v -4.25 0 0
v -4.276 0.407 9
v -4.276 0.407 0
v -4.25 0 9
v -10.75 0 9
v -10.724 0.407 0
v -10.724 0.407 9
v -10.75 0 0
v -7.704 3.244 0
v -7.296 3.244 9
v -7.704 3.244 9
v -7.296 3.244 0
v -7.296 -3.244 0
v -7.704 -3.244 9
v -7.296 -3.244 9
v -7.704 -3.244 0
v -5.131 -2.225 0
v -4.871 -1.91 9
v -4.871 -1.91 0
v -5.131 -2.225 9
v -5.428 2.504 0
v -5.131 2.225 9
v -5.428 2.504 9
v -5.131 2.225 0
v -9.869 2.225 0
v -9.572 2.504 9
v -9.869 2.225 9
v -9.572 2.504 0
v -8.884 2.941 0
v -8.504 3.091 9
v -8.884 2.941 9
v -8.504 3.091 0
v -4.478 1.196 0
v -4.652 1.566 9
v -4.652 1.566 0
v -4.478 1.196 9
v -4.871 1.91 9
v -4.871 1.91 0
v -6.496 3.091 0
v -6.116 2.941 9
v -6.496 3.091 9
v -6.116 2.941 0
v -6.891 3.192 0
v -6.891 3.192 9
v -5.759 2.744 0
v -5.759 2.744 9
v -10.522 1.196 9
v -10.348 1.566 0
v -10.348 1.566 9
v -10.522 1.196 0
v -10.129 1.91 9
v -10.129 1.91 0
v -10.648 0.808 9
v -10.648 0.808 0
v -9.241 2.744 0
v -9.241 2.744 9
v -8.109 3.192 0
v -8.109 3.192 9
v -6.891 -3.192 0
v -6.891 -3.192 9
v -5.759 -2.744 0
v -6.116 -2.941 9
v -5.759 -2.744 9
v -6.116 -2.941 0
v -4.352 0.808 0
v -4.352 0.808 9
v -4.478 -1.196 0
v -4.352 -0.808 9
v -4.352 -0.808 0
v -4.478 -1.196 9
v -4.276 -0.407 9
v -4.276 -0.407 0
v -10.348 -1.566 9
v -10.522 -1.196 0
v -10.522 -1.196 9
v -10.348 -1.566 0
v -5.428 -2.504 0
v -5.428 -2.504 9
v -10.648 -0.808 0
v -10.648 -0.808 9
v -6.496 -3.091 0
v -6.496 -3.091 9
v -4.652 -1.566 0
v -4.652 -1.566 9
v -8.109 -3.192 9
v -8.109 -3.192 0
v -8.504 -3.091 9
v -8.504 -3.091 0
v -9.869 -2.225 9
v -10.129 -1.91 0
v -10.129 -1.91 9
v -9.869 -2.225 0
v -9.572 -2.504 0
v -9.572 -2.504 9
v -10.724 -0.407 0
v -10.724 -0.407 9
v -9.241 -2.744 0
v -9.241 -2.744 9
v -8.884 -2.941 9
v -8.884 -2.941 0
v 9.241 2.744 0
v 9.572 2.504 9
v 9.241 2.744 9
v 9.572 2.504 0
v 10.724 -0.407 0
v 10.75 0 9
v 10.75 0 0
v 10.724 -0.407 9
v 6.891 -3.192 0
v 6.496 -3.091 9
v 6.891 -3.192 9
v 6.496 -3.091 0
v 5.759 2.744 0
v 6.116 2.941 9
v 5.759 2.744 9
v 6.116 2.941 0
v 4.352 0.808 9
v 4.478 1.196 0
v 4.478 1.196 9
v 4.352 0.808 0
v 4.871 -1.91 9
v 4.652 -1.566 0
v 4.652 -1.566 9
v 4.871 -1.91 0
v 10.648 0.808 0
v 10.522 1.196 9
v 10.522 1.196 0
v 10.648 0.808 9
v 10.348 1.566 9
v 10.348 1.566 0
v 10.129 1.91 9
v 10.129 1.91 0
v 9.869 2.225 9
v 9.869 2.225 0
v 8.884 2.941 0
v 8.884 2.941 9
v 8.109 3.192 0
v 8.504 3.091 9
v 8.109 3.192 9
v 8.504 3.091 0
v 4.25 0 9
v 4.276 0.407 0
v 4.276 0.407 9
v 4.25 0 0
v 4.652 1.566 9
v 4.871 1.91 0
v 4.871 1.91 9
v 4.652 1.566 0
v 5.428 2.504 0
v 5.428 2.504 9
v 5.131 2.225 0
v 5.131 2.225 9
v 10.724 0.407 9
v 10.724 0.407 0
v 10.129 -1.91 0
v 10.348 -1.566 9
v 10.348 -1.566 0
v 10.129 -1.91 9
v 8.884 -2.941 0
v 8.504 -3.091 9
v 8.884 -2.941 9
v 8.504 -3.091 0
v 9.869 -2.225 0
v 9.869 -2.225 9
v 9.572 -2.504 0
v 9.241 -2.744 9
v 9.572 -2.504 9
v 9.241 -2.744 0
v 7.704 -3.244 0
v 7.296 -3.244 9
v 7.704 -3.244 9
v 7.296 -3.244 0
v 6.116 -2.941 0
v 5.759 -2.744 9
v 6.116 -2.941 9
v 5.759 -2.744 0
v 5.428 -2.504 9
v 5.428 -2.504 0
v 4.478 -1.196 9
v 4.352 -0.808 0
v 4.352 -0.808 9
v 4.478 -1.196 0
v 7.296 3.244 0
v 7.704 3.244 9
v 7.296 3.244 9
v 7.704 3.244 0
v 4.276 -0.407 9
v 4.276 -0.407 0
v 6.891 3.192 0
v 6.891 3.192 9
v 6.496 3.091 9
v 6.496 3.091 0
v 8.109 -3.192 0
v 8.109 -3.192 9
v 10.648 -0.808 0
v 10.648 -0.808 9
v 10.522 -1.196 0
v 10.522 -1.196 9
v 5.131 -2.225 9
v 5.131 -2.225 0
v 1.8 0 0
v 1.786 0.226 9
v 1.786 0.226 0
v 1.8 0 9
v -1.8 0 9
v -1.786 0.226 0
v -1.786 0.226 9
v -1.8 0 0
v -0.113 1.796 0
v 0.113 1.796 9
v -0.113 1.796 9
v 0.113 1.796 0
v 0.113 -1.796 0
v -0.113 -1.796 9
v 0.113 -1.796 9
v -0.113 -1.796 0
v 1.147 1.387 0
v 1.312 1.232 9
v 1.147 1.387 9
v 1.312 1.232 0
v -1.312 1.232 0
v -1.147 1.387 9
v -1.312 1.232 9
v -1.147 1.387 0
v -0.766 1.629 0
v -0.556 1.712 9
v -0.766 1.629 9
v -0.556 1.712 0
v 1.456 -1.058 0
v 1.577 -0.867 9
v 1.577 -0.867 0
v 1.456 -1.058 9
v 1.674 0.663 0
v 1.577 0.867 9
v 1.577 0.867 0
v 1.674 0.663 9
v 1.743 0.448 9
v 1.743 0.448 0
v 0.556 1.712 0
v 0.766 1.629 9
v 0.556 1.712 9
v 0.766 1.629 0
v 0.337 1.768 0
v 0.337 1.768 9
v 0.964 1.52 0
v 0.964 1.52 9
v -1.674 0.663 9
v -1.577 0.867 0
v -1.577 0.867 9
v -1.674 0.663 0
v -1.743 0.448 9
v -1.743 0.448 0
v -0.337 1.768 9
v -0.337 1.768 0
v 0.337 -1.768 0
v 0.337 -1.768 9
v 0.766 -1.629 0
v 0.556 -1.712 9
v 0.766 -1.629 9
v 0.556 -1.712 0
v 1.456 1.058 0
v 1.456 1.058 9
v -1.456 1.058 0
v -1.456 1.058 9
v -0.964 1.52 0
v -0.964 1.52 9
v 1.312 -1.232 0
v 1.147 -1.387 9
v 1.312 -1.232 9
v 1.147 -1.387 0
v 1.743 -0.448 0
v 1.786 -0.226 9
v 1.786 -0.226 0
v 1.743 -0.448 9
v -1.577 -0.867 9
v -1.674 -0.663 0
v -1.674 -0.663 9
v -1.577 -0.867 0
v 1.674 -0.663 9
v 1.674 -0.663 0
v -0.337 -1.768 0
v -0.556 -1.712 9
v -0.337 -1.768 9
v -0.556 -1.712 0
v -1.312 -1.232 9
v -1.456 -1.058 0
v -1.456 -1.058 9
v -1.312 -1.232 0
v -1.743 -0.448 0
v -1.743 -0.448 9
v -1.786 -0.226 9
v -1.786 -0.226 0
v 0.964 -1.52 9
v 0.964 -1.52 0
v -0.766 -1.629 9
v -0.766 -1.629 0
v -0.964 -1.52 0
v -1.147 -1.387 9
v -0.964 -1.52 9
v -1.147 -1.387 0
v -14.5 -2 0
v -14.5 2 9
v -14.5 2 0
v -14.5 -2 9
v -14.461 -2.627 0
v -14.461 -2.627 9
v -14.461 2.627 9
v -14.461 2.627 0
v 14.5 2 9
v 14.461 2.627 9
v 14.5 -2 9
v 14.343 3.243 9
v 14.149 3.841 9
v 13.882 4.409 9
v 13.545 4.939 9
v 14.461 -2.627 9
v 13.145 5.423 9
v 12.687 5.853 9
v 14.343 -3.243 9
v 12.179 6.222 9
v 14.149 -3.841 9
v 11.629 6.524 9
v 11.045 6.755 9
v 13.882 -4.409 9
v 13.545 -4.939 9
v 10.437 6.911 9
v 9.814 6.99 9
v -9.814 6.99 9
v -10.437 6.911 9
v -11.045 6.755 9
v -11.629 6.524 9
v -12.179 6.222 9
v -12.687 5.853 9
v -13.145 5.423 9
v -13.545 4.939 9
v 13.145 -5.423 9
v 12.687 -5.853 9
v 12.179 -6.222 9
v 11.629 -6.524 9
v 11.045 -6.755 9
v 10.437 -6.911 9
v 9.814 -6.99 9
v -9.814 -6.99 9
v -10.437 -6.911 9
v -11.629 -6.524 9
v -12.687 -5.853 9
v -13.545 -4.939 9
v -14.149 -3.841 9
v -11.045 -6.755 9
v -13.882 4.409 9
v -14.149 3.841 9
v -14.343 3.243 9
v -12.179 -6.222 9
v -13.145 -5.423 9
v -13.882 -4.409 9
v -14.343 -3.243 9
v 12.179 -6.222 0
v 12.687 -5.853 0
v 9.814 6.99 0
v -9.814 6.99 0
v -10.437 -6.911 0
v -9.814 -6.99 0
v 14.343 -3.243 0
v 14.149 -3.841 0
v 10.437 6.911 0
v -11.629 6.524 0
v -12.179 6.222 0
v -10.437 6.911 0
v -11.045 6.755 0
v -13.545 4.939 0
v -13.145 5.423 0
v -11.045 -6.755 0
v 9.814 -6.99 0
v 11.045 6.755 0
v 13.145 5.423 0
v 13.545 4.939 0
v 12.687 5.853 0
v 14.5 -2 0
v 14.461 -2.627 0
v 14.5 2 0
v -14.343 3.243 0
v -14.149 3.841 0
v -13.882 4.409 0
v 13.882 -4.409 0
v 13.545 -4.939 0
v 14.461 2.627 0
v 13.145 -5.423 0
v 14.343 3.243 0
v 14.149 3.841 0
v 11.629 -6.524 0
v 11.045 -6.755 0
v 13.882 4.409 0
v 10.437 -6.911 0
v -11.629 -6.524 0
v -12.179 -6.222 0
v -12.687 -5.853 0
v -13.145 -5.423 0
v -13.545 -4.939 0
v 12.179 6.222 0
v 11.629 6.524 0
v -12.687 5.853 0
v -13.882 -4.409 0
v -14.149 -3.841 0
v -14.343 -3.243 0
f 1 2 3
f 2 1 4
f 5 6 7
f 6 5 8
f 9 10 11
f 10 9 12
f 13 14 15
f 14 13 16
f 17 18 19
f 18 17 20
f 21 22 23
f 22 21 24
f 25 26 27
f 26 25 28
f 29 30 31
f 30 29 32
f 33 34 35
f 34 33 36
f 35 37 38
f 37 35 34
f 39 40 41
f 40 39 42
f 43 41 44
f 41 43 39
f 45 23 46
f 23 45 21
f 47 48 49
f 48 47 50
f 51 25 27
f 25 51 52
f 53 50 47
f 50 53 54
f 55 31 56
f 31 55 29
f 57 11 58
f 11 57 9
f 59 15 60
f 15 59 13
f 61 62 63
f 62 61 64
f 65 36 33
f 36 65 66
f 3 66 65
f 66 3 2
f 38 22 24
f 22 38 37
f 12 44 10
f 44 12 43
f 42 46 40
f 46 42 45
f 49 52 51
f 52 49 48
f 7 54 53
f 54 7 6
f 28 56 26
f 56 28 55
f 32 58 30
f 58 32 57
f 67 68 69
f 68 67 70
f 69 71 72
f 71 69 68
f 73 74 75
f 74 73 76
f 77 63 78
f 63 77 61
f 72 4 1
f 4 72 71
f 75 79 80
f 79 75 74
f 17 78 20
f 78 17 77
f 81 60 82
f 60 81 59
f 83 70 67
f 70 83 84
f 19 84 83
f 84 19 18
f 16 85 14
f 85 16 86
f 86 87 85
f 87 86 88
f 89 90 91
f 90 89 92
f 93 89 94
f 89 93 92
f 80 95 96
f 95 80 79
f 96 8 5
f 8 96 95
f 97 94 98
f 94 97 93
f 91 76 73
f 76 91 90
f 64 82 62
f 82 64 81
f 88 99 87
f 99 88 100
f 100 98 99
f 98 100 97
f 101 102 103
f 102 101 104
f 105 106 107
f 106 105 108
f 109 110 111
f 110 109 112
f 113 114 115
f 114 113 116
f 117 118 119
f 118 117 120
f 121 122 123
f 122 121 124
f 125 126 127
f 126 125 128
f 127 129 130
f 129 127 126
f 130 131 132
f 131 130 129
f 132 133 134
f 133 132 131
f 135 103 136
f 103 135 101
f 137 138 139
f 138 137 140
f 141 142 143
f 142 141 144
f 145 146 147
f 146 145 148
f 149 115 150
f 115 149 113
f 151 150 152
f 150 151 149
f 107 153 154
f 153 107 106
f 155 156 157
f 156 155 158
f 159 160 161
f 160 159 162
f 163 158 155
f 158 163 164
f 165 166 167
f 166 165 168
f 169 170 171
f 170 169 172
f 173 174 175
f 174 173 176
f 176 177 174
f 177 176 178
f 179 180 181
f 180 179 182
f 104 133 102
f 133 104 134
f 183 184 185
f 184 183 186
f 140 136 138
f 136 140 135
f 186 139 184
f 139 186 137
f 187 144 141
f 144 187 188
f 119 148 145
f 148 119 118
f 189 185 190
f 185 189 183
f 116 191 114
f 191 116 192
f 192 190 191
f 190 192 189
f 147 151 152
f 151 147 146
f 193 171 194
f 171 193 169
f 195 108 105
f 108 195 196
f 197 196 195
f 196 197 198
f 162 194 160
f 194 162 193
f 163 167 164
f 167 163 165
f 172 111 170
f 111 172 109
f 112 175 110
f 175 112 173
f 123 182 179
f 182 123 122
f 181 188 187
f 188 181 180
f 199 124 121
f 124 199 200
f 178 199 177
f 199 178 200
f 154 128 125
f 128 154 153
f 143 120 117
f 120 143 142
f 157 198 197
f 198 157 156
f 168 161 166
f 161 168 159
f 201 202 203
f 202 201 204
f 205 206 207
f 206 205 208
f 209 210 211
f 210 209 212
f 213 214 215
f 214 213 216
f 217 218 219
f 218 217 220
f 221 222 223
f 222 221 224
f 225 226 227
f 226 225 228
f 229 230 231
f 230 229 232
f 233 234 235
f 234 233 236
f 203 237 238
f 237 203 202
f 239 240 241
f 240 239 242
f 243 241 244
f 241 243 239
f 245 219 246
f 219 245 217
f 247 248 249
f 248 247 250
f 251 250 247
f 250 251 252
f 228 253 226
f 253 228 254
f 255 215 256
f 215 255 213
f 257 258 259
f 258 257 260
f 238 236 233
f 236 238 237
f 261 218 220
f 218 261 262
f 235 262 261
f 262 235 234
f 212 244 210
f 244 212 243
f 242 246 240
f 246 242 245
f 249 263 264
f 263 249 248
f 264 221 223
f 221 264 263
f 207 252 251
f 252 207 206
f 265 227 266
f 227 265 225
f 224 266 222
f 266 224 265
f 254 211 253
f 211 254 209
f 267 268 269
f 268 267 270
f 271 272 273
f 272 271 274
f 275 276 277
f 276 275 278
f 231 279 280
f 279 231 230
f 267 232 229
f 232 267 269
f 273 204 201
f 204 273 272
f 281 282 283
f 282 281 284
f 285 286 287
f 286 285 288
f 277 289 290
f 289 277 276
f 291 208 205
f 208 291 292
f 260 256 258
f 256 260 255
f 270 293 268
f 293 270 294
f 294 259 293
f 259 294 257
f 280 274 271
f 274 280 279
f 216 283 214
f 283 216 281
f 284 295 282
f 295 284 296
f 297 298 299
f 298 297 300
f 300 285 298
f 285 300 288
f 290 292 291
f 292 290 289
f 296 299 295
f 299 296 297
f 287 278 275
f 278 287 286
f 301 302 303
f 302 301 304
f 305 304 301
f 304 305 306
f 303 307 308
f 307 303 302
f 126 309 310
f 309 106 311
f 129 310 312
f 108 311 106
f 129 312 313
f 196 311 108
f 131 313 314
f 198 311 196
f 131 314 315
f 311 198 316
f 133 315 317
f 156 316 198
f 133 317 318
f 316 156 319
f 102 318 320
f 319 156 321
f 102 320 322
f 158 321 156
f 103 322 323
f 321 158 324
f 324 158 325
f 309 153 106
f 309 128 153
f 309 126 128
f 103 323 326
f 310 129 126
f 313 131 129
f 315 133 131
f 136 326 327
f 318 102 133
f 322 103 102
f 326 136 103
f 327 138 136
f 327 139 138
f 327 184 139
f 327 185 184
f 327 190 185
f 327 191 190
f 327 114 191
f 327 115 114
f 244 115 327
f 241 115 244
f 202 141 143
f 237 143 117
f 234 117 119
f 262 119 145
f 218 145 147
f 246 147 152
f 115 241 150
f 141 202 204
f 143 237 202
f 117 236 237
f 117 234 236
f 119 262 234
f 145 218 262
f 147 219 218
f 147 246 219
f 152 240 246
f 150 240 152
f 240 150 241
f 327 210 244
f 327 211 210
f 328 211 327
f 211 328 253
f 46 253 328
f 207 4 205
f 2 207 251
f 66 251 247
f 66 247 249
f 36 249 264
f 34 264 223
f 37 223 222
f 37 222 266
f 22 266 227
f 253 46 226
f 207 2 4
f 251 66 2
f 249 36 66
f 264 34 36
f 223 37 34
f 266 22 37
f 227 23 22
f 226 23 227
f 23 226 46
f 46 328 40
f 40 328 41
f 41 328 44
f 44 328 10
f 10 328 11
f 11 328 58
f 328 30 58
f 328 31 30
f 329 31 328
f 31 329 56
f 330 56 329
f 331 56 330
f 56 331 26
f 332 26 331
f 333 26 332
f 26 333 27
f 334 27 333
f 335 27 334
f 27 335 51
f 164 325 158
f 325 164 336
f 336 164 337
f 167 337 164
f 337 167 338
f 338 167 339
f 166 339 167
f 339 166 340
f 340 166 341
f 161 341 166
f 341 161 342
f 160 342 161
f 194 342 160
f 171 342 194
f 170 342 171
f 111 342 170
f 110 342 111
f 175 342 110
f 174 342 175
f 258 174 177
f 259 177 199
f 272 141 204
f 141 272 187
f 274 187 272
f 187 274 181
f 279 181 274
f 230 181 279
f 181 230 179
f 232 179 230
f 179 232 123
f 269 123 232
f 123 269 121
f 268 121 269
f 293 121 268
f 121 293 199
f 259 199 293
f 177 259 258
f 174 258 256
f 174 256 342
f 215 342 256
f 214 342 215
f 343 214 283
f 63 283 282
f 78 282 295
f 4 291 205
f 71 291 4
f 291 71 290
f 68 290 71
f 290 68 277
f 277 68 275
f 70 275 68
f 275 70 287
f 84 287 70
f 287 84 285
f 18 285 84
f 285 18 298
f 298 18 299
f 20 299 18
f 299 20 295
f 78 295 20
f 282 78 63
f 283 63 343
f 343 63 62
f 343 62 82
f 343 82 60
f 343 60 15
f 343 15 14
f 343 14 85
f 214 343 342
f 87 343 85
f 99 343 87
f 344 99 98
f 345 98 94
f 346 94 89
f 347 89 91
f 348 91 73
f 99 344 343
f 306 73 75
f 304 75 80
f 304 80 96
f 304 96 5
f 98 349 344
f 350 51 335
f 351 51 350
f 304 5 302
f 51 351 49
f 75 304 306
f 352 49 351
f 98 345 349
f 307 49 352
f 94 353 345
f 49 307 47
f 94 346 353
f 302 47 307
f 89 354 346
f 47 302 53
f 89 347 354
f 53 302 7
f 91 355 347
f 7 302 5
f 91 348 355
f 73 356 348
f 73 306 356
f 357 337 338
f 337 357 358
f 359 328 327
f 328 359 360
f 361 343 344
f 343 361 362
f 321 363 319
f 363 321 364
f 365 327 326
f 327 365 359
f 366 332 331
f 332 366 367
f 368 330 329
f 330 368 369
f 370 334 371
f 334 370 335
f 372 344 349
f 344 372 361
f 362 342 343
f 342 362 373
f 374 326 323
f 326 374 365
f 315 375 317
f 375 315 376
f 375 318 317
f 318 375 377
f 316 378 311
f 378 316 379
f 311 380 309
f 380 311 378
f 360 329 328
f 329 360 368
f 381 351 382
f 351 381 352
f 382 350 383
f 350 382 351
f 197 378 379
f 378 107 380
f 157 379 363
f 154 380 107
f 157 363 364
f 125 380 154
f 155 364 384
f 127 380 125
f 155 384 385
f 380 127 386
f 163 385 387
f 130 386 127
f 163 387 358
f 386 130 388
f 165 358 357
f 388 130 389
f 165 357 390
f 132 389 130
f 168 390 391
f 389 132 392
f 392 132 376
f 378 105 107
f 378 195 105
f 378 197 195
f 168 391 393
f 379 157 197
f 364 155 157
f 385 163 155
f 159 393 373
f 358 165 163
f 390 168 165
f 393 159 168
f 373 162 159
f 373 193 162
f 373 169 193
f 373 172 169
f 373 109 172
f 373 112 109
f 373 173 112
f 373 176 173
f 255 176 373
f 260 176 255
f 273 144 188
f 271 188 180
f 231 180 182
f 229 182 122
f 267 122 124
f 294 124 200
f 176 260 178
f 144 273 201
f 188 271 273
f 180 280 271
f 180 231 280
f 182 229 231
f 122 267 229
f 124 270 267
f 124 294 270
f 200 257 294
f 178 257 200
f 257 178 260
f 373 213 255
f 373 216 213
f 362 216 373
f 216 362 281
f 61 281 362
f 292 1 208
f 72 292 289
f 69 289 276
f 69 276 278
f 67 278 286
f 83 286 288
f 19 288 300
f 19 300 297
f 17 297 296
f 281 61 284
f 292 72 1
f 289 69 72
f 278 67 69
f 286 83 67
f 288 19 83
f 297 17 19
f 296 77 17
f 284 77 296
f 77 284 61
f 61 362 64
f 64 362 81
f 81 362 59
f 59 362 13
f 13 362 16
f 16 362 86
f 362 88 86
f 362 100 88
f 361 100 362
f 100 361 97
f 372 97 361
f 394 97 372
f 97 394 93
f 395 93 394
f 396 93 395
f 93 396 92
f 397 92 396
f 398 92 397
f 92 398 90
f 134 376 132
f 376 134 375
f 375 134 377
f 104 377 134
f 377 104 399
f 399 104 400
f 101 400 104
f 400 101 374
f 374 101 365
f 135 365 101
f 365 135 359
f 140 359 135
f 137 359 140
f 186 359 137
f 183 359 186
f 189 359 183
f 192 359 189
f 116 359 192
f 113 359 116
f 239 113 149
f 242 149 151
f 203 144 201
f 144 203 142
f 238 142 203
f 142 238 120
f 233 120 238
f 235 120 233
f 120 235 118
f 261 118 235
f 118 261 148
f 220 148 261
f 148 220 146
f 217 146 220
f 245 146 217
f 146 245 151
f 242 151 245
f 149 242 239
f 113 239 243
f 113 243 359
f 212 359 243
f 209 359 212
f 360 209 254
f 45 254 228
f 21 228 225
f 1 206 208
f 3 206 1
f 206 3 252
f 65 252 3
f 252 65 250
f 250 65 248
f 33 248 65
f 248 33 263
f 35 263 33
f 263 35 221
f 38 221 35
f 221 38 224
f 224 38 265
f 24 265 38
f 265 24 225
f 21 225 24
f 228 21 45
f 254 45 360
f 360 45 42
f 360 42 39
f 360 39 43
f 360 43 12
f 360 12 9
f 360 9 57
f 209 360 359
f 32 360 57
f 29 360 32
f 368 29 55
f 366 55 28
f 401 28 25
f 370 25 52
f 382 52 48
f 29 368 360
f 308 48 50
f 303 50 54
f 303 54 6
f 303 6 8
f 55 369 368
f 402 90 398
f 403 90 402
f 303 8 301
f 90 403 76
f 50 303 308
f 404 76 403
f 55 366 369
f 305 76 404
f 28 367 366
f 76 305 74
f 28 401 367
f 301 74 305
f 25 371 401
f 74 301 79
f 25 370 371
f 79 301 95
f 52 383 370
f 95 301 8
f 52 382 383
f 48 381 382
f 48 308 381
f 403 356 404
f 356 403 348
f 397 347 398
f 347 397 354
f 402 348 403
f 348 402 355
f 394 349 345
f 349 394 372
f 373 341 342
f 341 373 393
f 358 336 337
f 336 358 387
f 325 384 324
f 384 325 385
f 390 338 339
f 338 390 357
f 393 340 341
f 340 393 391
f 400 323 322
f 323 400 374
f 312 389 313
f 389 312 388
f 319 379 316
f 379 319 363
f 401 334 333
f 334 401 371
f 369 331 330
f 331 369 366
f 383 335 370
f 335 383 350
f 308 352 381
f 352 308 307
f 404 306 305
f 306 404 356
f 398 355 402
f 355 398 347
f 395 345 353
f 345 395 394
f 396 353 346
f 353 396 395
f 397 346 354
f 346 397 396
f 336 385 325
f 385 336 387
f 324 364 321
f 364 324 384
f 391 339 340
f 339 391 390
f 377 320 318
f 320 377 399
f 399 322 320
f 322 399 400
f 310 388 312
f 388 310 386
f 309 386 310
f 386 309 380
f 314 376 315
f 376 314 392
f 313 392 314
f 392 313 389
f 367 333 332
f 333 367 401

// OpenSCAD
$fn = 50;


difference() {
	union() {
		translate(v = [0, 0, 0]) {
			rotate(a = [0, 0, 0]) {
				hull() {
					translate(v = [-9.5000000000, 2.0000000000, 0]) {
						rotate(a = [0, 0, 0]) {
							translate(v = [0, 0, 0]) {
								rotate(a = [0, 0, 0]) {
									cylinder(h = 9, r = 5);
								}
							}
						}
					}
					translate(v = [9.5000000000, 2.0000000000, 0]) {
						rotate(a = [0, 0, 0]) {
							translate(v = [0, 0, 0]) {
								rotate(a = [0, 0, 0]) {
									cylinder(h = 9, r = 5);
								}
							}
						}
					}
					translate(v = [-9.5000000000, -2.0000000000, 0]) {
						rotate(a = [0, 0, 0]) {
							translate(v = [0, 0, 0]) {
								rotate(a = [0, 0, 0]) {
									cylinder(h = 9, r = 5);
								}
							}
						}
					}
					translate(v = [9.5000000000, -2.0000000000, 0]) {
						rotate(a = [0, 0, 0]) {
							translate(v = [0, 0, 0]) {
								rotate(a = [0, 0, 0]) {
									cylinder(h = 9, r = 5);
								}
							}
						}
					}
				}
			}
		}
	}
	union() {
		translate(v = [-7.5000000000, 0.0000000000, 0]) {
			rotate(a = [0, 0, 0]) {
				translate(v = [0, 0, -50]) {
					rotate(a = [0, 0, 0]) {
						cylinder(h = 100, r = 3.2500000000);
					}
				}
			}
		}
		translate(v = [7.5000000000, 0.0000000000, 0]) {
			rotate(a = [0, 0, 0]) {
				translate(v = [0, 0, -50]) {
					rotate(a = [0, 0, 0]) {
						cylinder(h = 100, r = 3.2500000000);
					}
				}
			}
		}
		translate(v = [-7.5000000000, 0.0000000000, 0]) {
			rotate(a = [0, 0, 0]) {
				translate(v = [0, 0, -50]) {
					rotate(a = [0, 0, 0]) {
						cylinder(h = 100, r = 1.8000000000);
					}
				}
			}
		}
		translate(v = [0.0000000000, 0.0000000000, 0]) {
			rotate(a = [0, 0, 0]) {
				translate(v = [0, 0, -50]) {
					rotate(a = [0, 0, 0]) {
						cylinder(h = 100, r = 1.8000000000);
					}
				}
			}
		}
		translate(v = [7.5000000000, 0.0000000000, 0]) {
			rotate(a = [0, 0, 0]) {
				translate(v = [0, 0, -50]) {
					rotate(a = [0, 0, 0]) {
						cylinder(h = 100, r = 1.8000000000);
					}
				}
			}
		}
	}
}
